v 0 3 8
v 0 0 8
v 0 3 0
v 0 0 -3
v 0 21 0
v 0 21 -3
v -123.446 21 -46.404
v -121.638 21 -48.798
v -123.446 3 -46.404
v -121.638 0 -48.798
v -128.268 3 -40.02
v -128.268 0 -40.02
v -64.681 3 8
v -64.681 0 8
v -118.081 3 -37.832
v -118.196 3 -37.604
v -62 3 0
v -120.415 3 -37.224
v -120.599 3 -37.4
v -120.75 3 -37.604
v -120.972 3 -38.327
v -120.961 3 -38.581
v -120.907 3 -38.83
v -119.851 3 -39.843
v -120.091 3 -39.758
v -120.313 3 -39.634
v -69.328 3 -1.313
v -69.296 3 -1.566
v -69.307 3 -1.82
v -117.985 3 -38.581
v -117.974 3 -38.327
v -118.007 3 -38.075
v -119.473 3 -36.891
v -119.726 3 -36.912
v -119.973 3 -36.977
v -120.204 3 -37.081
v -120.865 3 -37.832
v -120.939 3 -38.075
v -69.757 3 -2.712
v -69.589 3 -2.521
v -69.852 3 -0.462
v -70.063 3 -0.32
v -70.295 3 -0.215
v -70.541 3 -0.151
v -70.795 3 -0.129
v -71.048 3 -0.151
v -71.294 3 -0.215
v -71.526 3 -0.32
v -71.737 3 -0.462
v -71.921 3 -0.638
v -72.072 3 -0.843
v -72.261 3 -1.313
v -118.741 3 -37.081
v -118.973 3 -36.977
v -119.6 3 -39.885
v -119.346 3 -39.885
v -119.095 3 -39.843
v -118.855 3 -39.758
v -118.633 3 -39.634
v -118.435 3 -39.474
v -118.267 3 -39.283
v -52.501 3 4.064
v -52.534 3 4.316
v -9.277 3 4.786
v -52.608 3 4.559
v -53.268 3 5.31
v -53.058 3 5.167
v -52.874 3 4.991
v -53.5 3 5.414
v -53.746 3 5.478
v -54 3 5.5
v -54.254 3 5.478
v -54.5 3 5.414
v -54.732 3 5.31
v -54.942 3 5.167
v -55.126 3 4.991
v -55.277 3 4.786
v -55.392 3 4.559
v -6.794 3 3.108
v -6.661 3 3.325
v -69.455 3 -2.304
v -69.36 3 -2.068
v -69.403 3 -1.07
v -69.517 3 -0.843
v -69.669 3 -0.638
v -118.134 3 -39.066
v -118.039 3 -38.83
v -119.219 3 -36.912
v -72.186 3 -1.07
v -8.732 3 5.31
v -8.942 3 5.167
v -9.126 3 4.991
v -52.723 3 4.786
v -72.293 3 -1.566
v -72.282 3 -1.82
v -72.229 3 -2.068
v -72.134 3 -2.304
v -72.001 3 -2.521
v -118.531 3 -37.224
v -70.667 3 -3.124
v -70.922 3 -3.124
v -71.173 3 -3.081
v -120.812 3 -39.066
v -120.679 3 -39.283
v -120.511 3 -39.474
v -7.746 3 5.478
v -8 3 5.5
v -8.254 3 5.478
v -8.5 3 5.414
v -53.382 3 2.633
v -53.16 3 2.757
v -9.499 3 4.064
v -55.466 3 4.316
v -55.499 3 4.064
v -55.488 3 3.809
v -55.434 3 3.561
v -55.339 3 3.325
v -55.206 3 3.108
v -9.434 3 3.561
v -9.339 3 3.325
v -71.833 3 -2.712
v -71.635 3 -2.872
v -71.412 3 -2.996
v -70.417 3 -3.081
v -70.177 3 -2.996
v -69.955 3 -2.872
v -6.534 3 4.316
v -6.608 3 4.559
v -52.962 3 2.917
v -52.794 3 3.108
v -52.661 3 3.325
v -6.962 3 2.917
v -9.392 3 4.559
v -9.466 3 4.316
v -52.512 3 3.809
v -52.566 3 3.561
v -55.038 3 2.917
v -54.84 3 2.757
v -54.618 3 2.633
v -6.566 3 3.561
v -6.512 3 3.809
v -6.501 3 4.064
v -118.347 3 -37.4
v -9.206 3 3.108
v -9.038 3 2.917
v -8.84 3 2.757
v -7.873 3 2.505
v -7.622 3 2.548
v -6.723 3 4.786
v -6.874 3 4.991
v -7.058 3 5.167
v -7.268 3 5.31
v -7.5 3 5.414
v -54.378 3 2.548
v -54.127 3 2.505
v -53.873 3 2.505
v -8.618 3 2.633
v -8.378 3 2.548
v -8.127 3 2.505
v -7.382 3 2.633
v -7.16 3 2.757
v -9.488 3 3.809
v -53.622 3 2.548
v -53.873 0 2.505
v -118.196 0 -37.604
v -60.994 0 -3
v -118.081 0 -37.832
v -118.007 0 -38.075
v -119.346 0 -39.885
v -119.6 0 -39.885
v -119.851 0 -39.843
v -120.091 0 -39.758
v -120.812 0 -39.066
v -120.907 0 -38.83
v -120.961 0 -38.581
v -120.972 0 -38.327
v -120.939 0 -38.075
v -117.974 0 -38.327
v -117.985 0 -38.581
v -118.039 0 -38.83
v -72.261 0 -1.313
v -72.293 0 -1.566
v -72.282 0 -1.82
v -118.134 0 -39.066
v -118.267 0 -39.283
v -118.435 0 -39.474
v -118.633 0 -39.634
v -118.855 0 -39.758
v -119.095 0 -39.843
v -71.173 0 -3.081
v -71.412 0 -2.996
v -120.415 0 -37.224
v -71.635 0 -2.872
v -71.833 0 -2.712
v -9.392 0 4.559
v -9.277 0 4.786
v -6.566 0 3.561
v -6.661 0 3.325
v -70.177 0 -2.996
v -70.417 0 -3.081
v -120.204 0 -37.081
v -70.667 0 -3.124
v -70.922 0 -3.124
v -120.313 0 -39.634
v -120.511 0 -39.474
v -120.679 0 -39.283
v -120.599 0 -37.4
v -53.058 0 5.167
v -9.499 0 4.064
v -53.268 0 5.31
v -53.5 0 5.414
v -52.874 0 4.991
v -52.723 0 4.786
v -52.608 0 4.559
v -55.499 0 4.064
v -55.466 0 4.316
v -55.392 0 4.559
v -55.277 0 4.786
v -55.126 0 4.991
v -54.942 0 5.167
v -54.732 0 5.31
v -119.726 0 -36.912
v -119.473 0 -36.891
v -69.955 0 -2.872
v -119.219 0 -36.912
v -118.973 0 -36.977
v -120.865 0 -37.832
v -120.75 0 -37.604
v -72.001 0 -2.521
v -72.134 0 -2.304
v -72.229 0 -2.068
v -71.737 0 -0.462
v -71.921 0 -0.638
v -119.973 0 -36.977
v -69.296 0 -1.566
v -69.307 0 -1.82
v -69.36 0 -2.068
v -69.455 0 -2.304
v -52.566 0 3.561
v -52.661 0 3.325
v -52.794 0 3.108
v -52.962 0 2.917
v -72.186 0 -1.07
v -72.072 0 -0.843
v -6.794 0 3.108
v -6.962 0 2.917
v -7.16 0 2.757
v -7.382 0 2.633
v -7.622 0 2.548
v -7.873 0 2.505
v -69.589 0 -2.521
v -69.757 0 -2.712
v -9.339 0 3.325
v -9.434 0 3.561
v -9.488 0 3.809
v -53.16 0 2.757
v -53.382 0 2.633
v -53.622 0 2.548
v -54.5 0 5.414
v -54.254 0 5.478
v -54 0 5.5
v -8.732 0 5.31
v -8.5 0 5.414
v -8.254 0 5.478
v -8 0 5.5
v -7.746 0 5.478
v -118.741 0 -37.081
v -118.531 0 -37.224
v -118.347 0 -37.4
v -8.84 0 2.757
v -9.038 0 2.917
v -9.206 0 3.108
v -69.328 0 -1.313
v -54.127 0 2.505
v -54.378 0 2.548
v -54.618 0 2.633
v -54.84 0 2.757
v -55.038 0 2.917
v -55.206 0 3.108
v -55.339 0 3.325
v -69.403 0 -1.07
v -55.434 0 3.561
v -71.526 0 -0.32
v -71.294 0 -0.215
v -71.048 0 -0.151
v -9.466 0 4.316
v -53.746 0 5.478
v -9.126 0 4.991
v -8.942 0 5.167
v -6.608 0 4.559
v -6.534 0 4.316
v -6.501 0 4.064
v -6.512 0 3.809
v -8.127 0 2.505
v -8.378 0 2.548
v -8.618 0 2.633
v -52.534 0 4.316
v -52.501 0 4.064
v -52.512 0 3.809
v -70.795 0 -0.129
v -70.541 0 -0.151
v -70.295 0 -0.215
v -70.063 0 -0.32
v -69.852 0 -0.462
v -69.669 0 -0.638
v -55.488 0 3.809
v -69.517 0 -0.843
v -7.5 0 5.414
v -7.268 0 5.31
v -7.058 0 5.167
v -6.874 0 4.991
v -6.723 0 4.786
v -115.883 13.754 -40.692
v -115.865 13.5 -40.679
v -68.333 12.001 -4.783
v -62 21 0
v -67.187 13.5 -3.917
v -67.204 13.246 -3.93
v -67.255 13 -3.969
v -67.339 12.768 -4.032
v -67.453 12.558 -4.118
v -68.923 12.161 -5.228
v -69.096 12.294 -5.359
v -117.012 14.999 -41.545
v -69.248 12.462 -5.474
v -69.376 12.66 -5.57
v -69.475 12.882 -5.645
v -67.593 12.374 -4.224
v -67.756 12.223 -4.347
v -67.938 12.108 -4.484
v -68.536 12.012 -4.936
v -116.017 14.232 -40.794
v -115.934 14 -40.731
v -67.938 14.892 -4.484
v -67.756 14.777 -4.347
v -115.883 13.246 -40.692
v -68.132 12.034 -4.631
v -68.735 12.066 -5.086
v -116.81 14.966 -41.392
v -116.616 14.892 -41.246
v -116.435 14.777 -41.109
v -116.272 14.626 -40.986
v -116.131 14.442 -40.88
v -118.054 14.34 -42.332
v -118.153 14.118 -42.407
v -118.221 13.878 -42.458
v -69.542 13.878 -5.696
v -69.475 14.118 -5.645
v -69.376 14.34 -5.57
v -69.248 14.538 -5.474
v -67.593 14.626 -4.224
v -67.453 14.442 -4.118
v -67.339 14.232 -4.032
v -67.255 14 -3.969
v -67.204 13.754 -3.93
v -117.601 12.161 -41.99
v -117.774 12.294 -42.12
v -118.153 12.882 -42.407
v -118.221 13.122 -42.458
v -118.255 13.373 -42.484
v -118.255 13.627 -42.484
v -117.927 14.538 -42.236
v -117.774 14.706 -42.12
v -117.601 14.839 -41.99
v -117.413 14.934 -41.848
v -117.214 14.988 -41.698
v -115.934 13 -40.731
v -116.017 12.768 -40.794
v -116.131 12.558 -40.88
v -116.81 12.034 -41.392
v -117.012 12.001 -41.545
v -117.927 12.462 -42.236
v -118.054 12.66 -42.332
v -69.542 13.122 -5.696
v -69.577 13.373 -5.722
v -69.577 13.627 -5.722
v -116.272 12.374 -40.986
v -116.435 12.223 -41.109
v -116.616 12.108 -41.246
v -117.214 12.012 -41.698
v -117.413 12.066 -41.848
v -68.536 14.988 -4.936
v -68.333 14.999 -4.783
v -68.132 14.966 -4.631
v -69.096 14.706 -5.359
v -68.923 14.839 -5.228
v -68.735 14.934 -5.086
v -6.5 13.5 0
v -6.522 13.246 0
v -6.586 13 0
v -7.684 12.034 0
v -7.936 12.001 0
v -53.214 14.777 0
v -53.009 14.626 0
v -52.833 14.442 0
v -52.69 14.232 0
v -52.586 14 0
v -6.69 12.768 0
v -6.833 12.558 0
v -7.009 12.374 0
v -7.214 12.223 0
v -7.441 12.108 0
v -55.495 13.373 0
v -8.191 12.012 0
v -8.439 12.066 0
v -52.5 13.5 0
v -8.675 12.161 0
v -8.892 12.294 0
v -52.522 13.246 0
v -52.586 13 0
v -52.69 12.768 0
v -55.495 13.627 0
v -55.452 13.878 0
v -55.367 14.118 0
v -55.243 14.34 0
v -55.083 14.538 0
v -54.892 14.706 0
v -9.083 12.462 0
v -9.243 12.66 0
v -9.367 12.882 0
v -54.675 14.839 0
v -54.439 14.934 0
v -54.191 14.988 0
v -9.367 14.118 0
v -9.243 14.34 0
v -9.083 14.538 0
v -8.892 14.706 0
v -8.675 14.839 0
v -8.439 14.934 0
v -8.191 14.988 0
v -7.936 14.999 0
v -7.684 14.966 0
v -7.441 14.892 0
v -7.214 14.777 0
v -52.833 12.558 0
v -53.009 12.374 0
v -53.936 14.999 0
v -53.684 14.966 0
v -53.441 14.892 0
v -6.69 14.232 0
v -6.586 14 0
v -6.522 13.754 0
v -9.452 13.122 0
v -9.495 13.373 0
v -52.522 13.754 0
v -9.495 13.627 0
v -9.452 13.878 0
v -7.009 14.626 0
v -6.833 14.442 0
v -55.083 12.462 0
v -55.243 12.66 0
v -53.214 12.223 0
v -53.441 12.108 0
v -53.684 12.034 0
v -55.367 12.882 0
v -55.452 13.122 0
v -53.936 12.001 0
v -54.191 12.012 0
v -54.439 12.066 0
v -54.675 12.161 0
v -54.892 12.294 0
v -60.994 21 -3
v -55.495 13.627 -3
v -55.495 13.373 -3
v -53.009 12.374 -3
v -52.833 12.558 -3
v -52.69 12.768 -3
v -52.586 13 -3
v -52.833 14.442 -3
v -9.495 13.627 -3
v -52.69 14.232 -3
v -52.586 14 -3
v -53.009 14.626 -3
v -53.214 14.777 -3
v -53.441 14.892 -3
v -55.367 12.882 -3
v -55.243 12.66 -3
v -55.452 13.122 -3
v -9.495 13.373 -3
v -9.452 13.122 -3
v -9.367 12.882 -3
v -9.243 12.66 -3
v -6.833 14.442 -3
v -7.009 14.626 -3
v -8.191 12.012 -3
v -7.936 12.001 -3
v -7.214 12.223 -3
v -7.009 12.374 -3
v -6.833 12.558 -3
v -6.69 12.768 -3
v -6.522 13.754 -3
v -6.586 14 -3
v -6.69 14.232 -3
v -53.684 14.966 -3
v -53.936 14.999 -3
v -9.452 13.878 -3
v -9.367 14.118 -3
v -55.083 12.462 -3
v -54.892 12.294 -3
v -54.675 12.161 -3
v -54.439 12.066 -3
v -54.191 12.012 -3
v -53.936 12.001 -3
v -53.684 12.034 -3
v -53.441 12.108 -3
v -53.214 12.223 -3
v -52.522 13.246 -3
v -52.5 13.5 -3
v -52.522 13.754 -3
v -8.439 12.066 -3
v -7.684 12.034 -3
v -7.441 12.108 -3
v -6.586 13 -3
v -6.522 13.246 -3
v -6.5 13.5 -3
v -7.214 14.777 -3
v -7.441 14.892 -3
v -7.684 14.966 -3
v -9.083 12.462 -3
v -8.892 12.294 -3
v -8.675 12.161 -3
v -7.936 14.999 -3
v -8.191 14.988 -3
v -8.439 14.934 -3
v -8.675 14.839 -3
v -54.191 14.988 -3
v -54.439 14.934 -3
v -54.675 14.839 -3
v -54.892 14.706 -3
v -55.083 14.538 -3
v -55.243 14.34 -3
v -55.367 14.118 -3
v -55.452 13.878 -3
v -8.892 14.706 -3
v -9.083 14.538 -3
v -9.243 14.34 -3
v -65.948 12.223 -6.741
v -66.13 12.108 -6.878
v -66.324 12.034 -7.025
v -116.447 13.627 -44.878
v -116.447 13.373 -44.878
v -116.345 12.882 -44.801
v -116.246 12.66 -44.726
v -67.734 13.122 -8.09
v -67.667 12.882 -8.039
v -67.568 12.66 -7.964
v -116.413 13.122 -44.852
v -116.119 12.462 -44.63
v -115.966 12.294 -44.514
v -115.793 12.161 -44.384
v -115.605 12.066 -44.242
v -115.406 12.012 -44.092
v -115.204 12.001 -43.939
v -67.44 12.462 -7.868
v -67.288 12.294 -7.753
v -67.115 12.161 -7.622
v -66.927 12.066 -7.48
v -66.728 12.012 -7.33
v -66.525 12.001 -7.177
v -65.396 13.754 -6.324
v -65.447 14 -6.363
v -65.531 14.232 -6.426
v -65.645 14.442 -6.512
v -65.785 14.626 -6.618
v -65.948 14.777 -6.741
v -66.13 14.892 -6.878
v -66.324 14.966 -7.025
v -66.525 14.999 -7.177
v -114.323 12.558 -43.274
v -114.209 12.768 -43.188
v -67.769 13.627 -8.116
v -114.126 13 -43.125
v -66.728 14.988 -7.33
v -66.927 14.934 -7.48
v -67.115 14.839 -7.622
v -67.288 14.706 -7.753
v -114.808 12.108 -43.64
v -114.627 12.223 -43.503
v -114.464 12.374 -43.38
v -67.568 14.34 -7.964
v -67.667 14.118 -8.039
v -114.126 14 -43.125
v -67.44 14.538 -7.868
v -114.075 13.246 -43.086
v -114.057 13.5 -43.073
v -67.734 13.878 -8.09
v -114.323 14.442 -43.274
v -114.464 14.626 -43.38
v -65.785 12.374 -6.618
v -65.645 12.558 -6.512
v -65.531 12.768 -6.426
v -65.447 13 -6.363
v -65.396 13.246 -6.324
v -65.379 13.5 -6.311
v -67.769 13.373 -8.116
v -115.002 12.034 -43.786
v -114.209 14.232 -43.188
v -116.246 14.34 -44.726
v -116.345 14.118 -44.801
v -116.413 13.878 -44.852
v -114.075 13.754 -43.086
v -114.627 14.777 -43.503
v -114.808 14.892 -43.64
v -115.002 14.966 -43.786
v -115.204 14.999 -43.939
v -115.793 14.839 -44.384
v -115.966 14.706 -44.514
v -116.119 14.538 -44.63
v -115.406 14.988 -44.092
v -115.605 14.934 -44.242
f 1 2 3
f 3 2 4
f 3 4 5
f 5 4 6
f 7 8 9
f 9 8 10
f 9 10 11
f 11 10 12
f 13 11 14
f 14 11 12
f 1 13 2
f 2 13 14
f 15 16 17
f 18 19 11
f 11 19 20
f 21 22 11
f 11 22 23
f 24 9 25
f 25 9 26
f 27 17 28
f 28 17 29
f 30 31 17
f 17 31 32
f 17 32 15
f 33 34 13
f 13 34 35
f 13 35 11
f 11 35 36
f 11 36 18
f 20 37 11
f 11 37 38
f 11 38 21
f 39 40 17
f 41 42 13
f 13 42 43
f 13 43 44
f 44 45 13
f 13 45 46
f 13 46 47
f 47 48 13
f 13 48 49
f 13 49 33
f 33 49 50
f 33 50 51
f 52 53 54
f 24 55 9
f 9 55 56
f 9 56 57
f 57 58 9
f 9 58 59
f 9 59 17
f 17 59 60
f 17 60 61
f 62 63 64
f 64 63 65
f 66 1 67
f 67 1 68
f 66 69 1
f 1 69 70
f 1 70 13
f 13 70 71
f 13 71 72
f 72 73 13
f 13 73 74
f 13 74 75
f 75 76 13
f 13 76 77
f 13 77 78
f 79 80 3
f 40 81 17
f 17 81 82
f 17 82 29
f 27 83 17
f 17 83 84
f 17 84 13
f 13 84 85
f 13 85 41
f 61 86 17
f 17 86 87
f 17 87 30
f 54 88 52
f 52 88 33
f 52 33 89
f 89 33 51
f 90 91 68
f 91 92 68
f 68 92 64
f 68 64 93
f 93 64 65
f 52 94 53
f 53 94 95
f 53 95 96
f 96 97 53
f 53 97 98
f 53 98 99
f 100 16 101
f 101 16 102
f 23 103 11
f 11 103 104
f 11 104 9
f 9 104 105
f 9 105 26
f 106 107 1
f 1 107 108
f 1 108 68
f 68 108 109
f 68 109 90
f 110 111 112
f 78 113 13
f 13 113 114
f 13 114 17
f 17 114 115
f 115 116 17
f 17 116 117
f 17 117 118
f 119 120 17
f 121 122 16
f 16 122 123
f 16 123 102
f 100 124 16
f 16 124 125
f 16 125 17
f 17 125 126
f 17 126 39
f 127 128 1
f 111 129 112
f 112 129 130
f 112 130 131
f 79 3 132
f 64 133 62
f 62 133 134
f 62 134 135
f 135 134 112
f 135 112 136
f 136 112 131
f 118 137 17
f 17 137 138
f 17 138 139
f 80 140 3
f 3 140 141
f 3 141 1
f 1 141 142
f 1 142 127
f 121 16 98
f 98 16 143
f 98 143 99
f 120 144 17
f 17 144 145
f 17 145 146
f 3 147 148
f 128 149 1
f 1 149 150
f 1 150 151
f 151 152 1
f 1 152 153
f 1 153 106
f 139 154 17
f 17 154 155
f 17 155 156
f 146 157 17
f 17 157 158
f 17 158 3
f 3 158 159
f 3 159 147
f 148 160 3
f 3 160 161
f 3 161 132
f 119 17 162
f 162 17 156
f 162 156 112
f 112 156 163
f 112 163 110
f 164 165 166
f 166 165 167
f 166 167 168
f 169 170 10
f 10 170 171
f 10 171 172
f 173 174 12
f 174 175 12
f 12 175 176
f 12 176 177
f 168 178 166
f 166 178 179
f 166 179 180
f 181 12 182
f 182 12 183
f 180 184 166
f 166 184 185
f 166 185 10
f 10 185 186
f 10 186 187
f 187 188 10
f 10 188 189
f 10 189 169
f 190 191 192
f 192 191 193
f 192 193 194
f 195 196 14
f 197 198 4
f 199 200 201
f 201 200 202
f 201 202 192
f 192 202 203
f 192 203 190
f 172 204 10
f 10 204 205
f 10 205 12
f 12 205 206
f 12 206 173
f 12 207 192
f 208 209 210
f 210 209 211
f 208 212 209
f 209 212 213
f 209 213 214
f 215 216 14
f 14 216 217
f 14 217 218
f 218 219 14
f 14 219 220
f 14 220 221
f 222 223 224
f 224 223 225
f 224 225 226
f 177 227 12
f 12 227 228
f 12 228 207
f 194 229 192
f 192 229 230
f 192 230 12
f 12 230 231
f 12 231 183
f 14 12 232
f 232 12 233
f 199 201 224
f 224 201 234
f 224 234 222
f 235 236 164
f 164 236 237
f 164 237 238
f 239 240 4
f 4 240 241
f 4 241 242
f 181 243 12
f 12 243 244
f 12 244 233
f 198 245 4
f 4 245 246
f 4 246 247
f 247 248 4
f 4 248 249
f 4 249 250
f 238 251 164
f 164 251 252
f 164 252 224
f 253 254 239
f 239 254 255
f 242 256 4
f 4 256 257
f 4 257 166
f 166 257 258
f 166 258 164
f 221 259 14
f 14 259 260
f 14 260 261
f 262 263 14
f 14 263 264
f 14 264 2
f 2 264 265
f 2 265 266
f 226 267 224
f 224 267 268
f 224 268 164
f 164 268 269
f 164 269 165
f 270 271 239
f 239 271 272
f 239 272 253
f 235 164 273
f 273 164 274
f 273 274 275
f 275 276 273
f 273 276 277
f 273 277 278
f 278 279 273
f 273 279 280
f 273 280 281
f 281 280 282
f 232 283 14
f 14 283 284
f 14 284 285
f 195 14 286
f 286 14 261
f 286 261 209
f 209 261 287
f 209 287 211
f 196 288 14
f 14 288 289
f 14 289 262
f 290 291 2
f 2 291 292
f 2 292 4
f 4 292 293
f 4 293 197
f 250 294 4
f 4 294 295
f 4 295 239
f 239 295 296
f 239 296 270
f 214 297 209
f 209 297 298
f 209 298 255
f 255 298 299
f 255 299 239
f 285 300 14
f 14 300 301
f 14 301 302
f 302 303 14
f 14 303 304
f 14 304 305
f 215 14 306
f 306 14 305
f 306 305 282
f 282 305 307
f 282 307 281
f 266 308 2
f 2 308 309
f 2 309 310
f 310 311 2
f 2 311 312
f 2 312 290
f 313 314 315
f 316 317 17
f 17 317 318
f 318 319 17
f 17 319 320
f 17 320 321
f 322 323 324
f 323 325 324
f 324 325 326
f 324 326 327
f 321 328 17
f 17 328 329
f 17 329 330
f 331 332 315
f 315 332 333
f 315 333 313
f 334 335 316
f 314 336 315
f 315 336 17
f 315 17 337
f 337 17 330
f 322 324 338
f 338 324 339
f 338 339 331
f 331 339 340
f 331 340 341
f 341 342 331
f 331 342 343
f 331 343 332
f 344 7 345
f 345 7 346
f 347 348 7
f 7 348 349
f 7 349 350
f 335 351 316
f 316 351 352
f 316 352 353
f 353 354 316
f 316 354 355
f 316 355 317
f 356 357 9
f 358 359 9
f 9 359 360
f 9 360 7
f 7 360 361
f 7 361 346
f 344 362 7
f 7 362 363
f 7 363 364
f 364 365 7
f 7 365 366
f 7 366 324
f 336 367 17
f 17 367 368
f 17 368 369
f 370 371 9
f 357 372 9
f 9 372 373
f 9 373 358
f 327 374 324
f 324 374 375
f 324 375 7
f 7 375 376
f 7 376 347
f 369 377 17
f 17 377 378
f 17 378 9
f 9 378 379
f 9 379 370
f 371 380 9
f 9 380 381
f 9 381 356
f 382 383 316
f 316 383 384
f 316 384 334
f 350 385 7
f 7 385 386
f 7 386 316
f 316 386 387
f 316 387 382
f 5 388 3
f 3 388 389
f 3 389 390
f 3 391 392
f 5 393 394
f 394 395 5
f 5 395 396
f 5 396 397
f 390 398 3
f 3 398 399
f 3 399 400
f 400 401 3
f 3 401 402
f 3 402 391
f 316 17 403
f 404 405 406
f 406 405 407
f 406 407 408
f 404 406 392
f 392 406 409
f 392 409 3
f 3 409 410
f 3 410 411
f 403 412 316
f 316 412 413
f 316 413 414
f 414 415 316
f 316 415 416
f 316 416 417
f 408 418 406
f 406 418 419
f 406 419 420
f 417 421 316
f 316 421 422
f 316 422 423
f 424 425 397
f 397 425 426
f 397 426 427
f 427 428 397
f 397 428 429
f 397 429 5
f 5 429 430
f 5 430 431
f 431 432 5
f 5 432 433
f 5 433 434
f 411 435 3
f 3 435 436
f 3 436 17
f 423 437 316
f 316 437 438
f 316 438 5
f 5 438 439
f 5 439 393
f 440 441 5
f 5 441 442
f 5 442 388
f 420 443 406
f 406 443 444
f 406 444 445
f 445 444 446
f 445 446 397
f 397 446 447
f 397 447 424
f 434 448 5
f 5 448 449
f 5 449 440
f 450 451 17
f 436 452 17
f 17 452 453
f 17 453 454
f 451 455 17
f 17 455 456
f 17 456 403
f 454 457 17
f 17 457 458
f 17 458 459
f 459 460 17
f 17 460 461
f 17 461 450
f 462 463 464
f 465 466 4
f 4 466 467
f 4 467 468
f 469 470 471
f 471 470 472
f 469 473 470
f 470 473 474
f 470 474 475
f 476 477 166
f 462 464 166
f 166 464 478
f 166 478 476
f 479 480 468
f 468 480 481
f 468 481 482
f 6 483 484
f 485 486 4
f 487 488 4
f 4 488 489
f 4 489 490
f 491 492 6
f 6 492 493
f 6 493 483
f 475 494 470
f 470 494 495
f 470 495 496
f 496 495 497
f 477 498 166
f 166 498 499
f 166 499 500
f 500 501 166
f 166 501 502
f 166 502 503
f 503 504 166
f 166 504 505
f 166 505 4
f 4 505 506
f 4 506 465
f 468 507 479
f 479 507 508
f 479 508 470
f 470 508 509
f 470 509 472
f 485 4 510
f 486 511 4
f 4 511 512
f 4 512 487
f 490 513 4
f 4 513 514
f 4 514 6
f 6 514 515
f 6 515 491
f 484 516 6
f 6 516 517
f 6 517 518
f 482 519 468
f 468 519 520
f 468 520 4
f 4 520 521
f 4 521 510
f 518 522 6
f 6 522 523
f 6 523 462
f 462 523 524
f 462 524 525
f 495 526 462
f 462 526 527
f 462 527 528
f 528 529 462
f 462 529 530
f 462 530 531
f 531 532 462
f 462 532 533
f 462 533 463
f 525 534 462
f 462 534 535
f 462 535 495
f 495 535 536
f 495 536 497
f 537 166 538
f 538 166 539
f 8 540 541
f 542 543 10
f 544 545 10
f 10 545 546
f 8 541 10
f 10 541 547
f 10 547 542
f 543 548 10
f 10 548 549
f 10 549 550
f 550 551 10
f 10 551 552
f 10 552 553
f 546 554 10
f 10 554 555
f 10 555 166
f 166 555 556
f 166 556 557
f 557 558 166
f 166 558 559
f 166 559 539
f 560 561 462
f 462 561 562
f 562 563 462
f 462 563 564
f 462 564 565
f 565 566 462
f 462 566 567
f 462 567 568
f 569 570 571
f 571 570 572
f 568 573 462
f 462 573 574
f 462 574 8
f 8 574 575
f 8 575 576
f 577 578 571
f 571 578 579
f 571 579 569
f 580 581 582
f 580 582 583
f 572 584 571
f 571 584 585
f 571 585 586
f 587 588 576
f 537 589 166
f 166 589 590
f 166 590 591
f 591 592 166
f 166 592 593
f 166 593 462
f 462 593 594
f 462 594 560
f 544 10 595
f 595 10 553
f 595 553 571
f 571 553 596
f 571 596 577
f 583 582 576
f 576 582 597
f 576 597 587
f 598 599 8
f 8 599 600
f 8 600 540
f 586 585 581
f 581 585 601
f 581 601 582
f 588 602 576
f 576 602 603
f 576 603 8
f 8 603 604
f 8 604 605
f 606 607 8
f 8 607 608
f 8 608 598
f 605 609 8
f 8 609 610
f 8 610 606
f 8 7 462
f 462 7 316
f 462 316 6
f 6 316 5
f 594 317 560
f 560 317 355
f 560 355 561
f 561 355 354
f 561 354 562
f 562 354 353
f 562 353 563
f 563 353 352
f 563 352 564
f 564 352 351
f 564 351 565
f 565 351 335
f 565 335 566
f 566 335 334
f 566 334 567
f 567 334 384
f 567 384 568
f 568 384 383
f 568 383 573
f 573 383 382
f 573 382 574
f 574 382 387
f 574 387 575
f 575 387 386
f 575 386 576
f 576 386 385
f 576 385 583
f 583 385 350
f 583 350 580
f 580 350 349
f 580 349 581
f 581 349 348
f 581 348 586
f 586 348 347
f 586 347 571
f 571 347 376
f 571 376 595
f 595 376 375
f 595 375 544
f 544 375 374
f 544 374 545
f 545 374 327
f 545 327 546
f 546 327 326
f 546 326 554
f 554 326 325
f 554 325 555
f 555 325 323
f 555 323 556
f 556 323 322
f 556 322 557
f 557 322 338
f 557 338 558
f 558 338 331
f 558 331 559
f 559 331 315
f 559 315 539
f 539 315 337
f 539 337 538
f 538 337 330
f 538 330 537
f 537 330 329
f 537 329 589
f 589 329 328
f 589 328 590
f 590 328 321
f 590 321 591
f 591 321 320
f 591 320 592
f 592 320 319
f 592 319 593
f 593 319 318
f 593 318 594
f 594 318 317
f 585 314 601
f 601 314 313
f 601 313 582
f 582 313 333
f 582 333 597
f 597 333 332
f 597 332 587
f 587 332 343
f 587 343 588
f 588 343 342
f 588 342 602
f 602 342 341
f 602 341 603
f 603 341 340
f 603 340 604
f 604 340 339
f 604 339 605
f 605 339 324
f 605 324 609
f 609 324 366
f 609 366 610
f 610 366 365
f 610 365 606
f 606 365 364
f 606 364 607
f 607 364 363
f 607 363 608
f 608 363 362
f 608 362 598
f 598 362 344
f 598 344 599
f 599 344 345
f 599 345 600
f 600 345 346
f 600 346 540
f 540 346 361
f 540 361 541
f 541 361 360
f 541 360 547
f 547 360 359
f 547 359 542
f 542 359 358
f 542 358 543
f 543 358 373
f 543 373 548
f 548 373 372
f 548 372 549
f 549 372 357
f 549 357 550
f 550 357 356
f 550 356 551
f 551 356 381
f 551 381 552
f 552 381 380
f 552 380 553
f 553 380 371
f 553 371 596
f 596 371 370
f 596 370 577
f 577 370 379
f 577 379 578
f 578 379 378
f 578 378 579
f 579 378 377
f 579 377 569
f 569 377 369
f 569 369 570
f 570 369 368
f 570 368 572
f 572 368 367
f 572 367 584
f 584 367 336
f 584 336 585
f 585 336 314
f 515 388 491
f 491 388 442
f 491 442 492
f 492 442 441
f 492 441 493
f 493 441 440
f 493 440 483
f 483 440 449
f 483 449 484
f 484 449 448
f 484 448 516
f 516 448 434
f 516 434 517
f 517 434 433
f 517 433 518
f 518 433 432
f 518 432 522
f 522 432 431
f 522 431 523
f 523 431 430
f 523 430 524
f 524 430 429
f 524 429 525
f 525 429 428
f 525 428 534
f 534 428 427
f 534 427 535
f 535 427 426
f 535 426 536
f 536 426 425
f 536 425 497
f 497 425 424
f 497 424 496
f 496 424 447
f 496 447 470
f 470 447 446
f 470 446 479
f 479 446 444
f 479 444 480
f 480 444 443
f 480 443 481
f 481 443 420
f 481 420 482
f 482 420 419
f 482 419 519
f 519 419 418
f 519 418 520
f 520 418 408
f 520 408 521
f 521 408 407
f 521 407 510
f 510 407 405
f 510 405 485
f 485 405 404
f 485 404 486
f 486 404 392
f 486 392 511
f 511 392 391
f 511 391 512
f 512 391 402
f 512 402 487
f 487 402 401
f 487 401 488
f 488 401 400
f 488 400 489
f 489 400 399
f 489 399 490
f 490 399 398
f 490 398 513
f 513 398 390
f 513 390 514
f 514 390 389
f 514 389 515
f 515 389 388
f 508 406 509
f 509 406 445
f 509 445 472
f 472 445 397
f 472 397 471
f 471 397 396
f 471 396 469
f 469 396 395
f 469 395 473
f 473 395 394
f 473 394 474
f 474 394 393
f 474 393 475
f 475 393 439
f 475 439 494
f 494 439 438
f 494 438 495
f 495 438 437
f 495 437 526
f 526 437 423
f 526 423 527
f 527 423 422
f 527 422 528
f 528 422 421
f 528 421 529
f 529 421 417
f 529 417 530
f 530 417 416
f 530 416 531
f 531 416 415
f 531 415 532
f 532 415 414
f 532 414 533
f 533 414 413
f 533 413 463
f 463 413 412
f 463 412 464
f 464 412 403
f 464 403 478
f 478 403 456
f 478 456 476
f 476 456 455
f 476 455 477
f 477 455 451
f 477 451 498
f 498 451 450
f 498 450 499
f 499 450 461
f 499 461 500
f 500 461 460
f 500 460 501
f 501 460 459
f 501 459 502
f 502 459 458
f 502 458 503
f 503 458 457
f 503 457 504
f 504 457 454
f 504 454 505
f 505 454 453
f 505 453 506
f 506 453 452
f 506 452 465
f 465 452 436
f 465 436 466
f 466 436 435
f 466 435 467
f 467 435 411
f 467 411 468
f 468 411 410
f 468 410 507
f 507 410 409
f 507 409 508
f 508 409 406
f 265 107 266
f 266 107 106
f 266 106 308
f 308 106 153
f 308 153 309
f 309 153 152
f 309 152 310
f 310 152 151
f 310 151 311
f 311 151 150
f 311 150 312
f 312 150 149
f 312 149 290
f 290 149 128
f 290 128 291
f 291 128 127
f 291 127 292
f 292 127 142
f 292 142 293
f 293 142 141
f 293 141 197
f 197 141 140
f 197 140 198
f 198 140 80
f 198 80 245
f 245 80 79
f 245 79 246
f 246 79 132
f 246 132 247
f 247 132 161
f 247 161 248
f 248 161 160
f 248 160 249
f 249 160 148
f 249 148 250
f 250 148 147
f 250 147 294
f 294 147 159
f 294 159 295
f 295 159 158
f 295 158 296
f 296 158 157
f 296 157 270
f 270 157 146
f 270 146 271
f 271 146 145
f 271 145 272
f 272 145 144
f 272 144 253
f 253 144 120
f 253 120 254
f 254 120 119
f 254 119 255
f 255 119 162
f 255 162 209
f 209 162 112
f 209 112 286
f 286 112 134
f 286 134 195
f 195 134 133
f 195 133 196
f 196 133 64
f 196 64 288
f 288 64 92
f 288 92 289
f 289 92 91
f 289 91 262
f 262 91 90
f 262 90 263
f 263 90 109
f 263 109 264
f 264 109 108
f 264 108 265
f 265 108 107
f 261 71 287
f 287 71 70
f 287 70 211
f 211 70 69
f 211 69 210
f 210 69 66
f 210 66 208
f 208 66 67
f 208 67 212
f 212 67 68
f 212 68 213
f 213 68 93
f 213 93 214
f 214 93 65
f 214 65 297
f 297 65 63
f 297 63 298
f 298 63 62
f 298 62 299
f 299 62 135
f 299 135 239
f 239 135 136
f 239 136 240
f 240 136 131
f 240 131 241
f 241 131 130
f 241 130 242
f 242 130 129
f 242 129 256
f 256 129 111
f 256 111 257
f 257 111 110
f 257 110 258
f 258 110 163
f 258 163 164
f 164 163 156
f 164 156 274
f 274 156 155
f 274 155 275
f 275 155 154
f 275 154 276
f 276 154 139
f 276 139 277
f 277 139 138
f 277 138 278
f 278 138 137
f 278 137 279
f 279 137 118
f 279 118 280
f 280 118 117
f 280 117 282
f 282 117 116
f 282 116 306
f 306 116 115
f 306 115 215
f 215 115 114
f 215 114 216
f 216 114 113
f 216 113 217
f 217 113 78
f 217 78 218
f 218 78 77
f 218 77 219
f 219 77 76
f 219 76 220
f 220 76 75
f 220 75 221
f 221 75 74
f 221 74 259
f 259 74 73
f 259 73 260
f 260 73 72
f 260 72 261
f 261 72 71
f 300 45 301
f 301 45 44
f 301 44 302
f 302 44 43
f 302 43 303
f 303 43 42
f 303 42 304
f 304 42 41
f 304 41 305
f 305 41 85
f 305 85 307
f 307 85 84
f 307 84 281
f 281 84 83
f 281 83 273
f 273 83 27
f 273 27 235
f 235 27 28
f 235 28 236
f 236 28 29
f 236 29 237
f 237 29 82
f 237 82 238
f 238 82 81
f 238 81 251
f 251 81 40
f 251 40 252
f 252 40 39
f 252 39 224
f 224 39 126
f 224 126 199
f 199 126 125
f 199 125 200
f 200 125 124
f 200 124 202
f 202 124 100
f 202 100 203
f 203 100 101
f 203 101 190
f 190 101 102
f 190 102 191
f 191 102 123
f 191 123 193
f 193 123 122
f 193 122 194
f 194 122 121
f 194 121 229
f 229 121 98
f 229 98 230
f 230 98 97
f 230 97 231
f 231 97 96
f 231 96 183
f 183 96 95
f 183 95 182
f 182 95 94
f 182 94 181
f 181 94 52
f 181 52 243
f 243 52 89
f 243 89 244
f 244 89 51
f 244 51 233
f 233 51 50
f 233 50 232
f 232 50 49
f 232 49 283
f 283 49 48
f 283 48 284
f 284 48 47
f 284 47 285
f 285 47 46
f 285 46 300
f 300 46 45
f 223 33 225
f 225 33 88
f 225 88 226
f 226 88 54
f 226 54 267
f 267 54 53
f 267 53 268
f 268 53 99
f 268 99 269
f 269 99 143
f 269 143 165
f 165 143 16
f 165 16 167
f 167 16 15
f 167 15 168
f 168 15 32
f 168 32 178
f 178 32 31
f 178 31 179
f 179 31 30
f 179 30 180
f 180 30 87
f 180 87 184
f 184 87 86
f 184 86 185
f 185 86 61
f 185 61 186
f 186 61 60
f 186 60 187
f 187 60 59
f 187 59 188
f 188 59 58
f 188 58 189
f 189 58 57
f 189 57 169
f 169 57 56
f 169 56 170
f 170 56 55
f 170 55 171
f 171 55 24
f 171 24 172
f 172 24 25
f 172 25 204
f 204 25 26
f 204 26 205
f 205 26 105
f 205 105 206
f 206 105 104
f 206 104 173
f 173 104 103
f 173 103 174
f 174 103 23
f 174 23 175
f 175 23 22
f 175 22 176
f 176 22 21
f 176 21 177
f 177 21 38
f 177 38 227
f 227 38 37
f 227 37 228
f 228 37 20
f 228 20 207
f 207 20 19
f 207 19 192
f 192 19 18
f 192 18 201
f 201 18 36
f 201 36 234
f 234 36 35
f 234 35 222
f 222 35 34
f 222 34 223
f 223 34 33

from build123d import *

# Parameters (mm, degrees)
SALIENTE_EXTRUIR4_DEPTH      = 3
SALIENTE_EXTRUIR6_DEPTH      = 18
SALIENTE_EXTRUIR6_DEPTH_BACK = 3
CROQUIS5_R                   = 1.5
CORTAR_EXTRUIR2_DEPTH        = 3
CROQUIS6_R                   = 1.5
CORTAR_EXTRUIR3_DEPTH        = 3
CROQUIS7_R                   = 1.5
CORTAR_EXTRUIR5_DEPTH        = 3
CROQUIS8_R                   = 1.5
CORTAR_EXTRUIR6_DEPTH        = 3
CROQUIS9_R                   = 1.5
CORTAR_EXTRUIR7_DEPTH        = 3
CROQUIS10_R                  = 1.5
SALIENTE_EXTRUIR7_DEPTH      = 3


with BuildPart() as part:
    # Croquis1 → Saliente-Extruir4 (new body)
    with BuildSketch(Plane(origin=(0, 0, 0), x_dir=(1, 0, 0), z_dir=(0, 1, 0))):
        Polygon((0, 0), (-62, 0), (-123.446373684, 46.404128707), (-128.267581862, 40.020089883), (-64.681421115, -8), (0, -8), align=None)
    extrude(amount=SALIENTE_EXTRUIR4_DEPTH)

    # Croquis4 → Saliente-Extruir6 (add, two sides: drawn at the far end of the back side and taken through both)
    with BuildSketch(Plane(origin=(0, 3, 0), x_dir=(1, 0, 0), z_dir=(0, 1, 0)).offset(-SALIENTE_EXTRUIR6_DEPTH_BACK)):
        Polygon((-123.446373684, 46.404128707), (-121.638420618, 48.798143266), (-60.994467082, 3), (0, 3), (0, 0), (-62, 0), align=None)
    extrude(amount=SALIENTE_EXTRUIR6_DEPTH + SALIENTE_EXTRUIR6_DEPTH_BACK)

    # Croquis5 → Cortar-Extruir2 (cut)
    with BuildSketch(Plane(origin=(0, 3, 0), x_dir=(1, 0, 0), z_dir=(0, 1, 0))):
        with Locations(Location((-4, -4, 0), (0, 0, 270))):
            Circle(CROQUIS5_R)
        with Locations(Location((-58, -4, 0), (0, 0, 270))):
            Circle(CROQUIS5_R)
    extrude(amount=-CORTAR_EXTRUIR2_DEPTH, mode=Mode.SUBTRACT)

    # Croquis6 → Cortar-Extruir3 (cut)
    with BuildSketch(Plane(origin=(0, 3, 0), x_dir=(1, 0, 0), z_dir=(0, 1, 0))):
        with Locations(Location((-122.664958361, 40.801505206, 0), (0, 0, 270))):
            Circle(CROQUIS6_R)
        with Locations(Location((-67.602623501, -0.781415324, 0), (0, 0, 270))):
            Circle(CROQUIS6_R)
    extrude(amount=-CORTAR_EXTRUIR3_DEPTH, mode=Mode.SUBTRACT)

    # Croquis7 → Cortar-Extruir5 (cut)
    with BuildSketch(Plane(origin=(-22.51767178, 0, 29.816943304), x_dir=(0.7980048530430802, 0, 0.6026510221676322), z_dir=(-0.6026510221676322, 0, 0.7980048530430802))):
        with Locations((-118.476300889, 13.5)):
            Circle(CROQUIS7_R)
        with Locations((-57.476300889, 13.5)):
            Circle(CROQUIS7_R)
    extrude(amount=-CORTAR_EXTRUIR5_DEPTH, mode=Mode.SUBTRACT)

    # Croquis8 → Cortar-Extruir6 (cut)
    with BuildSketch(Plane.XY):
        with Locations((-54, 13.5)):
            Circle(CROQUIS8_R)
        with Locations((-8, 13.5)):
            Circle(CROQUIS8_R)
    extrude(amount=-CORTAR_EXTRUIR6_DEPTH, mode=Mode.SUBTRACT)

    # Croquis9 → Cortar-Extruir7 (cut)
    with BuildSketch(Plane(origin=(0, 3, 0), x_dir=(1, 0, 0), z_dir=(0, 1, 0))):
        with Locations(Location((-119.472938949, 38.390901117, 0), (0, 0, 270))):
            Circle(CROQUIS9_R)
        with Locations(Location((-70.794642913, 1.629188765, 0), (0, 0, 270))):
            Circle(CROQUIS9_R)
        with Locations(Location((-54, -4, 0), (0, 0, 270))):
            Circle(CROQUIS9_R)
        with Locations(Location((-8, -4, 0), (0, 0, 270))):
            Circle(CROQUIS9_R)
    extrude(amount=-CORTAR_EXTRUIR7_DEPTH, mode=Mode.SUBTRACT)

    # Croquis10 → Saliente-Extruir7 (add)
    with BuildSketch(Plane(origin=(0, 3, 0), x_dir=(1, 0, 0), z_dir=(0, 1, 0))):
        with Locations((-58, -4)):
            Circle(CROQUIS10_R)
        with Locations((-4, -4)):
            Circle(CROQUIS10_R)
        with Locations((-67.602623501, -0.781415324)):
            Circle(CROQUIS10_R)
        with Locations((-122.664958361, 40.801505206)):
            Circle(CROQUIS10_R)
    extrude(amount=-SALIENTE_EXTRUIR7_DEPTH)


solid = part.part
